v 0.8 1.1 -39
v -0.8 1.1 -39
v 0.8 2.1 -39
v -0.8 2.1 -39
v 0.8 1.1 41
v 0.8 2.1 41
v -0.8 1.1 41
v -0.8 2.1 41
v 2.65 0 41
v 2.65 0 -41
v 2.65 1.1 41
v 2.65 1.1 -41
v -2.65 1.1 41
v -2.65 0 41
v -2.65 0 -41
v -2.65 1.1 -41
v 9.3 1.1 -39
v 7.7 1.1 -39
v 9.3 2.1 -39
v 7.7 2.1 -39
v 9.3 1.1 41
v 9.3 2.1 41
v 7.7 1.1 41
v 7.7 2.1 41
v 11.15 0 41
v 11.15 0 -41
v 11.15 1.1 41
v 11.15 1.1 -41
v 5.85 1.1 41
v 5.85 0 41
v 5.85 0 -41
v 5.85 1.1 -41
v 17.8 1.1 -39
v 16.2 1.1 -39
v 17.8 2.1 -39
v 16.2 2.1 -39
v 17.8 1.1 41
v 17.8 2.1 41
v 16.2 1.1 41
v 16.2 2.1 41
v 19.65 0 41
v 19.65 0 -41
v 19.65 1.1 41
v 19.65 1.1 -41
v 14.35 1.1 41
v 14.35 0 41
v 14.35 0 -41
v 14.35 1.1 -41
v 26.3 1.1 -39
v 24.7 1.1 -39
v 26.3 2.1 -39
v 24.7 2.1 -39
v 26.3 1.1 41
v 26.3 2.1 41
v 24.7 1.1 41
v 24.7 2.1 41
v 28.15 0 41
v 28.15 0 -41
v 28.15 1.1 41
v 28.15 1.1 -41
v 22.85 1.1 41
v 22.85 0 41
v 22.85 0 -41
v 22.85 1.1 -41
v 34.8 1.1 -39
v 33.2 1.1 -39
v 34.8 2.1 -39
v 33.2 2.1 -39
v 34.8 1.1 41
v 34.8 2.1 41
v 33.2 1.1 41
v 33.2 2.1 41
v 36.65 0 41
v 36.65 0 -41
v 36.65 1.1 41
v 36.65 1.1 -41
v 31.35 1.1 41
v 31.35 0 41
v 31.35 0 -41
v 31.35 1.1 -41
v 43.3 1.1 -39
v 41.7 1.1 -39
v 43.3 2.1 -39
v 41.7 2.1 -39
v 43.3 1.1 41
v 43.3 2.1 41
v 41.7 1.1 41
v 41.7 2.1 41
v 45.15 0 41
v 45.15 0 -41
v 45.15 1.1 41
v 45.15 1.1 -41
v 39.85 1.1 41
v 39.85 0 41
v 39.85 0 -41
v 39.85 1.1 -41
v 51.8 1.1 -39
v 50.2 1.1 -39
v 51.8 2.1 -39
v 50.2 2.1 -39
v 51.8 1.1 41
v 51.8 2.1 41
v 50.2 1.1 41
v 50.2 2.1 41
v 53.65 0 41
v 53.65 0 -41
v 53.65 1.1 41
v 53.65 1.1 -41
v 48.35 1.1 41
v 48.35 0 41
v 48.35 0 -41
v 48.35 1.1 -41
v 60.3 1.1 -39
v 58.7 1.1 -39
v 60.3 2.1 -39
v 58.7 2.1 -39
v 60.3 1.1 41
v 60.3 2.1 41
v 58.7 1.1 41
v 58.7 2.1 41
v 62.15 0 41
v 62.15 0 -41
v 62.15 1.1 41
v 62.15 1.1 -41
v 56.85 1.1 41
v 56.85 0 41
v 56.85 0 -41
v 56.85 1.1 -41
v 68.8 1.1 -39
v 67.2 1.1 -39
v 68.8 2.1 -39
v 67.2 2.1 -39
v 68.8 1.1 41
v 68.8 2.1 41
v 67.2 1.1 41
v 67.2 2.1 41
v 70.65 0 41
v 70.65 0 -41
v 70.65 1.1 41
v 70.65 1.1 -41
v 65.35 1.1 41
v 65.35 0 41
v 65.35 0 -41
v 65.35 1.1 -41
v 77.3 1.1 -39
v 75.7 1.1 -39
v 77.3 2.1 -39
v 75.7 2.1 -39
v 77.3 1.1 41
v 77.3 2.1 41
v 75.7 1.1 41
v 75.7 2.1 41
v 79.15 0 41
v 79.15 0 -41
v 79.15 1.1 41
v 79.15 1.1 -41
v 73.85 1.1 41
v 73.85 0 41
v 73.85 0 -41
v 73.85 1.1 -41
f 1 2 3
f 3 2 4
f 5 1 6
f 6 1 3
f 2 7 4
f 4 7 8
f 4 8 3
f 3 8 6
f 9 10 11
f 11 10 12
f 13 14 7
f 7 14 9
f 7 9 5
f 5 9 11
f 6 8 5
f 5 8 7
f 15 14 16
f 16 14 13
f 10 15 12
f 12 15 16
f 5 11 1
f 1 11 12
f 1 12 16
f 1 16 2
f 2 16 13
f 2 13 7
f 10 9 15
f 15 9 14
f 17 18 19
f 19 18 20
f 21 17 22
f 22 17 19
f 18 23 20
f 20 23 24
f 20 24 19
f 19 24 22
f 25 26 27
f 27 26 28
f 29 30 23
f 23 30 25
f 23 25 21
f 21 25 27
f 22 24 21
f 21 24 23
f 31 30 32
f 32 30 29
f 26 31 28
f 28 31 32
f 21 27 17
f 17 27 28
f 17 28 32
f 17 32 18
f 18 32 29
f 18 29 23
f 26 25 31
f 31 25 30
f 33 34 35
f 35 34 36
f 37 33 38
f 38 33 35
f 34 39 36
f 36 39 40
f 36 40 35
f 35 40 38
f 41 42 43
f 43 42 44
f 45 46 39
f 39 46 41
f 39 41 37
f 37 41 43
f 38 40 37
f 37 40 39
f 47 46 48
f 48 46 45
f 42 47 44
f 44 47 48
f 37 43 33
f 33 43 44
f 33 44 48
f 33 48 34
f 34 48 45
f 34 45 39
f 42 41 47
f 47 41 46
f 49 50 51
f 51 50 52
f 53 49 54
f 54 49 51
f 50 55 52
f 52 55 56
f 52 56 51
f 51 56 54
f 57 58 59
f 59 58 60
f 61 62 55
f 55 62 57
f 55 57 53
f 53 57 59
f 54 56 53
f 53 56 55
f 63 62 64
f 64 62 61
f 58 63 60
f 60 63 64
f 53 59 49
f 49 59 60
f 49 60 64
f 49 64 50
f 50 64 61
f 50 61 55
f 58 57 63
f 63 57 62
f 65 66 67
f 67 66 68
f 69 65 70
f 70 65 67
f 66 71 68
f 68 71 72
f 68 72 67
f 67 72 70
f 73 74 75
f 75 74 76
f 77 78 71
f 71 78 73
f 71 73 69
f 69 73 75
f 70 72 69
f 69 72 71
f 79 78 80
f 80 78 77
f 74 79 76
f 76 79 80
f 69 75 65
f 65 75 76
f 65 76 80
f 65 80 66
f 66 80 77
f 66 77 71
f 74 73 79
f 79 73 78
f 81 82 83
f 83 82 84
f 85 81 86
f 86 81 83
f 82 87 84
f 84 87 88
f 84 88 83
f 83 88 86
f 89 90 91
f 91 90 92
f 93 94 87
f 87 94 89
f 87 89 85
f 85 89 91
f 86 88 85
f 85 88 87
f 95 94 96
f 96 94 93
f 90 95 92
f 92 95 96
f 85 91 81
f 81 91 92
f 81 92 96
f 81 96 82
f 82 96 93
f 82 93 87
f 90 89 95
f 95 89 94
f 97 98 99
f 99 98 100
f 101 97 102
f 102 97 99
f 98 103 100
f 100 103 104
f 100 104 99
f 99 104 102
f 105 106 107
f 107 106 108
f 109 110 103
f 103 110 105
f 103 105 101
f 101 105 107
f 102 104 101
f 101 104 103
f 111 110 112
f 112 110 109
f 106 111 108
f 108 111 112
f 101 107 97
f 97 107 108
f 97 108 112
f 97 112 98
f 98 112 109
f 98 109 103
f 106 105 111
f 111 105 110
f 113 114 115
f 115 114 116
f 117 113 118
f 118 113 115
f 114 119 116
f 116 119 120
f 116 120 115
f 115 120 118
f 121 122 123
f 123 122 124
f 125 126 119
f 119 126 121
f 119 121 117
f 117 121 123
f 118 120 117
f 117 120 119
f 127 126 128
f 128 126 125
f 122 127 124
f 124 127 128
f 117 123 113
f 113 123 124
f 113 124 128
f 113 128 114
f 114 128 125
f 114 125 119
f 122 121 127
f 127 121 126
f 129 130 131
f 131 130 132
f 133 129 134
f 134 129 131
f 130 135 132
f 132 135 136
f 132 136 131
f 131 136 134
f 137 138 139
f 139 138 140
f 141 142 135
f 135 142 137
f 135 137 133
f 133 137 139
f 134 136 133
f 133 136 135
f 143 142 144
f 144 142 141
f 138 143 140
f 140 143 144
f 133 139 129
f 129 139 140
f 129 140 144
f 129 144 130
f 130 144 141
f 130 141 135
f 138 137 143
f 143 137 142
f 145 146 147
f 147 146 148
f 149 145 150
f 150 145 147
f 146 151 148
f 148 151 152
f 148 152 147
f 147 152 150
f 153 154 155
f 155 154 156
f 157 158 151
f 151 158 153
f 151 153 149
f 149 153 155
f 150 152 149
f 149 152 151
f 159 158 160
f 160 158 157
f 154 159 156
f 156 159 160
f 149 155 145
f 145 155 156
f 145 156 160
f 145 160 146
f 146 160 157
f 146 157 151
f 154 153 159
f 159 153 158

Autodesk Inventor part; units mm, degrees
ref_plane "YZ Plane" through (0, 0, 0) normal (1, 0, 0) x (0, 1, 0)
ref_plane "XZ Plane" through (0, 0, 0) normal (0, 1, 0) x (-1, 0, 0)
ref_plane "XY Plane" through (0, 0, 0) normal (0, 0, 1) x (1, 0, 0)
sketch "Sketch1" plane through (0, 0, 0) normal (0, 1, 0) x (-1, 0, 0)
  line L0 (2.65, -41) -> (-2.65, -41)
  line L1 (-2.65, -41) -> (-2.65, 41)
  line L2 (-2.65, 41) -> (2.65, 41)
  line L3 (2.65, 41) -> (2.65, -41)
  line L4 (2.65, -41) -> (-2.65, 41) construction
  line L5 (-2.65, -41) -> (2.65, 41) construction
  line L6 (-1.2752, 41) -> (1.1507, 41)
  line L7 (1.1507, 41) -> (1.1507, 41)
  line L8 (1.1507, 41) -> (-1.2752, 41)
  line L9 (-1.2752, 41) -> (-1.2752, 41)
  point P0 (0, 0)
  dimension "d0" = 5.3
  dimension "d1" = 82
extrude "Extrusion1" add sketch "Sketch1" along normal blind 1.1
sketch "Sketch2" plane through (0, 1.1, 0) normal (0, 1, 0) x (1, 0, 0)
  line L0 (-2.65, -41) -> (2.65, -41) projected
  line L1 (0.8, -41) -> (-0.8, -41)
  line L2 (-0.8, -41) -> (-0.8, 39)
  line L3 (-0.8, 39) -> (0.8, 39)
  line L4 (0.8, 39) -> (0.8, -41)
  line L5 (2.65, -41) -> (2.65, 41) projected
  line L6 (-2.65, 41) -> (-2.65, -41) projected
  point P0 (0, 0)
  dimension "d4" = 80
  dimension "d5" = 1.6
  dimension "d6" = 5.3
  dimension "d7" = 1.85
extrude "Extrusion2" add sketch "Sketch2" along normal blind 1
pattern_linear "Rectangular Pattern1" count 10 spacing 8.5 along (1, 0, 0) of "Extrusion1", "Extrusion2"
equation "\"d7\" = 0.5 * d6 - 0.5 * d5"
equation "\"base_add\" = 0.6"
properties part number "structure2"
